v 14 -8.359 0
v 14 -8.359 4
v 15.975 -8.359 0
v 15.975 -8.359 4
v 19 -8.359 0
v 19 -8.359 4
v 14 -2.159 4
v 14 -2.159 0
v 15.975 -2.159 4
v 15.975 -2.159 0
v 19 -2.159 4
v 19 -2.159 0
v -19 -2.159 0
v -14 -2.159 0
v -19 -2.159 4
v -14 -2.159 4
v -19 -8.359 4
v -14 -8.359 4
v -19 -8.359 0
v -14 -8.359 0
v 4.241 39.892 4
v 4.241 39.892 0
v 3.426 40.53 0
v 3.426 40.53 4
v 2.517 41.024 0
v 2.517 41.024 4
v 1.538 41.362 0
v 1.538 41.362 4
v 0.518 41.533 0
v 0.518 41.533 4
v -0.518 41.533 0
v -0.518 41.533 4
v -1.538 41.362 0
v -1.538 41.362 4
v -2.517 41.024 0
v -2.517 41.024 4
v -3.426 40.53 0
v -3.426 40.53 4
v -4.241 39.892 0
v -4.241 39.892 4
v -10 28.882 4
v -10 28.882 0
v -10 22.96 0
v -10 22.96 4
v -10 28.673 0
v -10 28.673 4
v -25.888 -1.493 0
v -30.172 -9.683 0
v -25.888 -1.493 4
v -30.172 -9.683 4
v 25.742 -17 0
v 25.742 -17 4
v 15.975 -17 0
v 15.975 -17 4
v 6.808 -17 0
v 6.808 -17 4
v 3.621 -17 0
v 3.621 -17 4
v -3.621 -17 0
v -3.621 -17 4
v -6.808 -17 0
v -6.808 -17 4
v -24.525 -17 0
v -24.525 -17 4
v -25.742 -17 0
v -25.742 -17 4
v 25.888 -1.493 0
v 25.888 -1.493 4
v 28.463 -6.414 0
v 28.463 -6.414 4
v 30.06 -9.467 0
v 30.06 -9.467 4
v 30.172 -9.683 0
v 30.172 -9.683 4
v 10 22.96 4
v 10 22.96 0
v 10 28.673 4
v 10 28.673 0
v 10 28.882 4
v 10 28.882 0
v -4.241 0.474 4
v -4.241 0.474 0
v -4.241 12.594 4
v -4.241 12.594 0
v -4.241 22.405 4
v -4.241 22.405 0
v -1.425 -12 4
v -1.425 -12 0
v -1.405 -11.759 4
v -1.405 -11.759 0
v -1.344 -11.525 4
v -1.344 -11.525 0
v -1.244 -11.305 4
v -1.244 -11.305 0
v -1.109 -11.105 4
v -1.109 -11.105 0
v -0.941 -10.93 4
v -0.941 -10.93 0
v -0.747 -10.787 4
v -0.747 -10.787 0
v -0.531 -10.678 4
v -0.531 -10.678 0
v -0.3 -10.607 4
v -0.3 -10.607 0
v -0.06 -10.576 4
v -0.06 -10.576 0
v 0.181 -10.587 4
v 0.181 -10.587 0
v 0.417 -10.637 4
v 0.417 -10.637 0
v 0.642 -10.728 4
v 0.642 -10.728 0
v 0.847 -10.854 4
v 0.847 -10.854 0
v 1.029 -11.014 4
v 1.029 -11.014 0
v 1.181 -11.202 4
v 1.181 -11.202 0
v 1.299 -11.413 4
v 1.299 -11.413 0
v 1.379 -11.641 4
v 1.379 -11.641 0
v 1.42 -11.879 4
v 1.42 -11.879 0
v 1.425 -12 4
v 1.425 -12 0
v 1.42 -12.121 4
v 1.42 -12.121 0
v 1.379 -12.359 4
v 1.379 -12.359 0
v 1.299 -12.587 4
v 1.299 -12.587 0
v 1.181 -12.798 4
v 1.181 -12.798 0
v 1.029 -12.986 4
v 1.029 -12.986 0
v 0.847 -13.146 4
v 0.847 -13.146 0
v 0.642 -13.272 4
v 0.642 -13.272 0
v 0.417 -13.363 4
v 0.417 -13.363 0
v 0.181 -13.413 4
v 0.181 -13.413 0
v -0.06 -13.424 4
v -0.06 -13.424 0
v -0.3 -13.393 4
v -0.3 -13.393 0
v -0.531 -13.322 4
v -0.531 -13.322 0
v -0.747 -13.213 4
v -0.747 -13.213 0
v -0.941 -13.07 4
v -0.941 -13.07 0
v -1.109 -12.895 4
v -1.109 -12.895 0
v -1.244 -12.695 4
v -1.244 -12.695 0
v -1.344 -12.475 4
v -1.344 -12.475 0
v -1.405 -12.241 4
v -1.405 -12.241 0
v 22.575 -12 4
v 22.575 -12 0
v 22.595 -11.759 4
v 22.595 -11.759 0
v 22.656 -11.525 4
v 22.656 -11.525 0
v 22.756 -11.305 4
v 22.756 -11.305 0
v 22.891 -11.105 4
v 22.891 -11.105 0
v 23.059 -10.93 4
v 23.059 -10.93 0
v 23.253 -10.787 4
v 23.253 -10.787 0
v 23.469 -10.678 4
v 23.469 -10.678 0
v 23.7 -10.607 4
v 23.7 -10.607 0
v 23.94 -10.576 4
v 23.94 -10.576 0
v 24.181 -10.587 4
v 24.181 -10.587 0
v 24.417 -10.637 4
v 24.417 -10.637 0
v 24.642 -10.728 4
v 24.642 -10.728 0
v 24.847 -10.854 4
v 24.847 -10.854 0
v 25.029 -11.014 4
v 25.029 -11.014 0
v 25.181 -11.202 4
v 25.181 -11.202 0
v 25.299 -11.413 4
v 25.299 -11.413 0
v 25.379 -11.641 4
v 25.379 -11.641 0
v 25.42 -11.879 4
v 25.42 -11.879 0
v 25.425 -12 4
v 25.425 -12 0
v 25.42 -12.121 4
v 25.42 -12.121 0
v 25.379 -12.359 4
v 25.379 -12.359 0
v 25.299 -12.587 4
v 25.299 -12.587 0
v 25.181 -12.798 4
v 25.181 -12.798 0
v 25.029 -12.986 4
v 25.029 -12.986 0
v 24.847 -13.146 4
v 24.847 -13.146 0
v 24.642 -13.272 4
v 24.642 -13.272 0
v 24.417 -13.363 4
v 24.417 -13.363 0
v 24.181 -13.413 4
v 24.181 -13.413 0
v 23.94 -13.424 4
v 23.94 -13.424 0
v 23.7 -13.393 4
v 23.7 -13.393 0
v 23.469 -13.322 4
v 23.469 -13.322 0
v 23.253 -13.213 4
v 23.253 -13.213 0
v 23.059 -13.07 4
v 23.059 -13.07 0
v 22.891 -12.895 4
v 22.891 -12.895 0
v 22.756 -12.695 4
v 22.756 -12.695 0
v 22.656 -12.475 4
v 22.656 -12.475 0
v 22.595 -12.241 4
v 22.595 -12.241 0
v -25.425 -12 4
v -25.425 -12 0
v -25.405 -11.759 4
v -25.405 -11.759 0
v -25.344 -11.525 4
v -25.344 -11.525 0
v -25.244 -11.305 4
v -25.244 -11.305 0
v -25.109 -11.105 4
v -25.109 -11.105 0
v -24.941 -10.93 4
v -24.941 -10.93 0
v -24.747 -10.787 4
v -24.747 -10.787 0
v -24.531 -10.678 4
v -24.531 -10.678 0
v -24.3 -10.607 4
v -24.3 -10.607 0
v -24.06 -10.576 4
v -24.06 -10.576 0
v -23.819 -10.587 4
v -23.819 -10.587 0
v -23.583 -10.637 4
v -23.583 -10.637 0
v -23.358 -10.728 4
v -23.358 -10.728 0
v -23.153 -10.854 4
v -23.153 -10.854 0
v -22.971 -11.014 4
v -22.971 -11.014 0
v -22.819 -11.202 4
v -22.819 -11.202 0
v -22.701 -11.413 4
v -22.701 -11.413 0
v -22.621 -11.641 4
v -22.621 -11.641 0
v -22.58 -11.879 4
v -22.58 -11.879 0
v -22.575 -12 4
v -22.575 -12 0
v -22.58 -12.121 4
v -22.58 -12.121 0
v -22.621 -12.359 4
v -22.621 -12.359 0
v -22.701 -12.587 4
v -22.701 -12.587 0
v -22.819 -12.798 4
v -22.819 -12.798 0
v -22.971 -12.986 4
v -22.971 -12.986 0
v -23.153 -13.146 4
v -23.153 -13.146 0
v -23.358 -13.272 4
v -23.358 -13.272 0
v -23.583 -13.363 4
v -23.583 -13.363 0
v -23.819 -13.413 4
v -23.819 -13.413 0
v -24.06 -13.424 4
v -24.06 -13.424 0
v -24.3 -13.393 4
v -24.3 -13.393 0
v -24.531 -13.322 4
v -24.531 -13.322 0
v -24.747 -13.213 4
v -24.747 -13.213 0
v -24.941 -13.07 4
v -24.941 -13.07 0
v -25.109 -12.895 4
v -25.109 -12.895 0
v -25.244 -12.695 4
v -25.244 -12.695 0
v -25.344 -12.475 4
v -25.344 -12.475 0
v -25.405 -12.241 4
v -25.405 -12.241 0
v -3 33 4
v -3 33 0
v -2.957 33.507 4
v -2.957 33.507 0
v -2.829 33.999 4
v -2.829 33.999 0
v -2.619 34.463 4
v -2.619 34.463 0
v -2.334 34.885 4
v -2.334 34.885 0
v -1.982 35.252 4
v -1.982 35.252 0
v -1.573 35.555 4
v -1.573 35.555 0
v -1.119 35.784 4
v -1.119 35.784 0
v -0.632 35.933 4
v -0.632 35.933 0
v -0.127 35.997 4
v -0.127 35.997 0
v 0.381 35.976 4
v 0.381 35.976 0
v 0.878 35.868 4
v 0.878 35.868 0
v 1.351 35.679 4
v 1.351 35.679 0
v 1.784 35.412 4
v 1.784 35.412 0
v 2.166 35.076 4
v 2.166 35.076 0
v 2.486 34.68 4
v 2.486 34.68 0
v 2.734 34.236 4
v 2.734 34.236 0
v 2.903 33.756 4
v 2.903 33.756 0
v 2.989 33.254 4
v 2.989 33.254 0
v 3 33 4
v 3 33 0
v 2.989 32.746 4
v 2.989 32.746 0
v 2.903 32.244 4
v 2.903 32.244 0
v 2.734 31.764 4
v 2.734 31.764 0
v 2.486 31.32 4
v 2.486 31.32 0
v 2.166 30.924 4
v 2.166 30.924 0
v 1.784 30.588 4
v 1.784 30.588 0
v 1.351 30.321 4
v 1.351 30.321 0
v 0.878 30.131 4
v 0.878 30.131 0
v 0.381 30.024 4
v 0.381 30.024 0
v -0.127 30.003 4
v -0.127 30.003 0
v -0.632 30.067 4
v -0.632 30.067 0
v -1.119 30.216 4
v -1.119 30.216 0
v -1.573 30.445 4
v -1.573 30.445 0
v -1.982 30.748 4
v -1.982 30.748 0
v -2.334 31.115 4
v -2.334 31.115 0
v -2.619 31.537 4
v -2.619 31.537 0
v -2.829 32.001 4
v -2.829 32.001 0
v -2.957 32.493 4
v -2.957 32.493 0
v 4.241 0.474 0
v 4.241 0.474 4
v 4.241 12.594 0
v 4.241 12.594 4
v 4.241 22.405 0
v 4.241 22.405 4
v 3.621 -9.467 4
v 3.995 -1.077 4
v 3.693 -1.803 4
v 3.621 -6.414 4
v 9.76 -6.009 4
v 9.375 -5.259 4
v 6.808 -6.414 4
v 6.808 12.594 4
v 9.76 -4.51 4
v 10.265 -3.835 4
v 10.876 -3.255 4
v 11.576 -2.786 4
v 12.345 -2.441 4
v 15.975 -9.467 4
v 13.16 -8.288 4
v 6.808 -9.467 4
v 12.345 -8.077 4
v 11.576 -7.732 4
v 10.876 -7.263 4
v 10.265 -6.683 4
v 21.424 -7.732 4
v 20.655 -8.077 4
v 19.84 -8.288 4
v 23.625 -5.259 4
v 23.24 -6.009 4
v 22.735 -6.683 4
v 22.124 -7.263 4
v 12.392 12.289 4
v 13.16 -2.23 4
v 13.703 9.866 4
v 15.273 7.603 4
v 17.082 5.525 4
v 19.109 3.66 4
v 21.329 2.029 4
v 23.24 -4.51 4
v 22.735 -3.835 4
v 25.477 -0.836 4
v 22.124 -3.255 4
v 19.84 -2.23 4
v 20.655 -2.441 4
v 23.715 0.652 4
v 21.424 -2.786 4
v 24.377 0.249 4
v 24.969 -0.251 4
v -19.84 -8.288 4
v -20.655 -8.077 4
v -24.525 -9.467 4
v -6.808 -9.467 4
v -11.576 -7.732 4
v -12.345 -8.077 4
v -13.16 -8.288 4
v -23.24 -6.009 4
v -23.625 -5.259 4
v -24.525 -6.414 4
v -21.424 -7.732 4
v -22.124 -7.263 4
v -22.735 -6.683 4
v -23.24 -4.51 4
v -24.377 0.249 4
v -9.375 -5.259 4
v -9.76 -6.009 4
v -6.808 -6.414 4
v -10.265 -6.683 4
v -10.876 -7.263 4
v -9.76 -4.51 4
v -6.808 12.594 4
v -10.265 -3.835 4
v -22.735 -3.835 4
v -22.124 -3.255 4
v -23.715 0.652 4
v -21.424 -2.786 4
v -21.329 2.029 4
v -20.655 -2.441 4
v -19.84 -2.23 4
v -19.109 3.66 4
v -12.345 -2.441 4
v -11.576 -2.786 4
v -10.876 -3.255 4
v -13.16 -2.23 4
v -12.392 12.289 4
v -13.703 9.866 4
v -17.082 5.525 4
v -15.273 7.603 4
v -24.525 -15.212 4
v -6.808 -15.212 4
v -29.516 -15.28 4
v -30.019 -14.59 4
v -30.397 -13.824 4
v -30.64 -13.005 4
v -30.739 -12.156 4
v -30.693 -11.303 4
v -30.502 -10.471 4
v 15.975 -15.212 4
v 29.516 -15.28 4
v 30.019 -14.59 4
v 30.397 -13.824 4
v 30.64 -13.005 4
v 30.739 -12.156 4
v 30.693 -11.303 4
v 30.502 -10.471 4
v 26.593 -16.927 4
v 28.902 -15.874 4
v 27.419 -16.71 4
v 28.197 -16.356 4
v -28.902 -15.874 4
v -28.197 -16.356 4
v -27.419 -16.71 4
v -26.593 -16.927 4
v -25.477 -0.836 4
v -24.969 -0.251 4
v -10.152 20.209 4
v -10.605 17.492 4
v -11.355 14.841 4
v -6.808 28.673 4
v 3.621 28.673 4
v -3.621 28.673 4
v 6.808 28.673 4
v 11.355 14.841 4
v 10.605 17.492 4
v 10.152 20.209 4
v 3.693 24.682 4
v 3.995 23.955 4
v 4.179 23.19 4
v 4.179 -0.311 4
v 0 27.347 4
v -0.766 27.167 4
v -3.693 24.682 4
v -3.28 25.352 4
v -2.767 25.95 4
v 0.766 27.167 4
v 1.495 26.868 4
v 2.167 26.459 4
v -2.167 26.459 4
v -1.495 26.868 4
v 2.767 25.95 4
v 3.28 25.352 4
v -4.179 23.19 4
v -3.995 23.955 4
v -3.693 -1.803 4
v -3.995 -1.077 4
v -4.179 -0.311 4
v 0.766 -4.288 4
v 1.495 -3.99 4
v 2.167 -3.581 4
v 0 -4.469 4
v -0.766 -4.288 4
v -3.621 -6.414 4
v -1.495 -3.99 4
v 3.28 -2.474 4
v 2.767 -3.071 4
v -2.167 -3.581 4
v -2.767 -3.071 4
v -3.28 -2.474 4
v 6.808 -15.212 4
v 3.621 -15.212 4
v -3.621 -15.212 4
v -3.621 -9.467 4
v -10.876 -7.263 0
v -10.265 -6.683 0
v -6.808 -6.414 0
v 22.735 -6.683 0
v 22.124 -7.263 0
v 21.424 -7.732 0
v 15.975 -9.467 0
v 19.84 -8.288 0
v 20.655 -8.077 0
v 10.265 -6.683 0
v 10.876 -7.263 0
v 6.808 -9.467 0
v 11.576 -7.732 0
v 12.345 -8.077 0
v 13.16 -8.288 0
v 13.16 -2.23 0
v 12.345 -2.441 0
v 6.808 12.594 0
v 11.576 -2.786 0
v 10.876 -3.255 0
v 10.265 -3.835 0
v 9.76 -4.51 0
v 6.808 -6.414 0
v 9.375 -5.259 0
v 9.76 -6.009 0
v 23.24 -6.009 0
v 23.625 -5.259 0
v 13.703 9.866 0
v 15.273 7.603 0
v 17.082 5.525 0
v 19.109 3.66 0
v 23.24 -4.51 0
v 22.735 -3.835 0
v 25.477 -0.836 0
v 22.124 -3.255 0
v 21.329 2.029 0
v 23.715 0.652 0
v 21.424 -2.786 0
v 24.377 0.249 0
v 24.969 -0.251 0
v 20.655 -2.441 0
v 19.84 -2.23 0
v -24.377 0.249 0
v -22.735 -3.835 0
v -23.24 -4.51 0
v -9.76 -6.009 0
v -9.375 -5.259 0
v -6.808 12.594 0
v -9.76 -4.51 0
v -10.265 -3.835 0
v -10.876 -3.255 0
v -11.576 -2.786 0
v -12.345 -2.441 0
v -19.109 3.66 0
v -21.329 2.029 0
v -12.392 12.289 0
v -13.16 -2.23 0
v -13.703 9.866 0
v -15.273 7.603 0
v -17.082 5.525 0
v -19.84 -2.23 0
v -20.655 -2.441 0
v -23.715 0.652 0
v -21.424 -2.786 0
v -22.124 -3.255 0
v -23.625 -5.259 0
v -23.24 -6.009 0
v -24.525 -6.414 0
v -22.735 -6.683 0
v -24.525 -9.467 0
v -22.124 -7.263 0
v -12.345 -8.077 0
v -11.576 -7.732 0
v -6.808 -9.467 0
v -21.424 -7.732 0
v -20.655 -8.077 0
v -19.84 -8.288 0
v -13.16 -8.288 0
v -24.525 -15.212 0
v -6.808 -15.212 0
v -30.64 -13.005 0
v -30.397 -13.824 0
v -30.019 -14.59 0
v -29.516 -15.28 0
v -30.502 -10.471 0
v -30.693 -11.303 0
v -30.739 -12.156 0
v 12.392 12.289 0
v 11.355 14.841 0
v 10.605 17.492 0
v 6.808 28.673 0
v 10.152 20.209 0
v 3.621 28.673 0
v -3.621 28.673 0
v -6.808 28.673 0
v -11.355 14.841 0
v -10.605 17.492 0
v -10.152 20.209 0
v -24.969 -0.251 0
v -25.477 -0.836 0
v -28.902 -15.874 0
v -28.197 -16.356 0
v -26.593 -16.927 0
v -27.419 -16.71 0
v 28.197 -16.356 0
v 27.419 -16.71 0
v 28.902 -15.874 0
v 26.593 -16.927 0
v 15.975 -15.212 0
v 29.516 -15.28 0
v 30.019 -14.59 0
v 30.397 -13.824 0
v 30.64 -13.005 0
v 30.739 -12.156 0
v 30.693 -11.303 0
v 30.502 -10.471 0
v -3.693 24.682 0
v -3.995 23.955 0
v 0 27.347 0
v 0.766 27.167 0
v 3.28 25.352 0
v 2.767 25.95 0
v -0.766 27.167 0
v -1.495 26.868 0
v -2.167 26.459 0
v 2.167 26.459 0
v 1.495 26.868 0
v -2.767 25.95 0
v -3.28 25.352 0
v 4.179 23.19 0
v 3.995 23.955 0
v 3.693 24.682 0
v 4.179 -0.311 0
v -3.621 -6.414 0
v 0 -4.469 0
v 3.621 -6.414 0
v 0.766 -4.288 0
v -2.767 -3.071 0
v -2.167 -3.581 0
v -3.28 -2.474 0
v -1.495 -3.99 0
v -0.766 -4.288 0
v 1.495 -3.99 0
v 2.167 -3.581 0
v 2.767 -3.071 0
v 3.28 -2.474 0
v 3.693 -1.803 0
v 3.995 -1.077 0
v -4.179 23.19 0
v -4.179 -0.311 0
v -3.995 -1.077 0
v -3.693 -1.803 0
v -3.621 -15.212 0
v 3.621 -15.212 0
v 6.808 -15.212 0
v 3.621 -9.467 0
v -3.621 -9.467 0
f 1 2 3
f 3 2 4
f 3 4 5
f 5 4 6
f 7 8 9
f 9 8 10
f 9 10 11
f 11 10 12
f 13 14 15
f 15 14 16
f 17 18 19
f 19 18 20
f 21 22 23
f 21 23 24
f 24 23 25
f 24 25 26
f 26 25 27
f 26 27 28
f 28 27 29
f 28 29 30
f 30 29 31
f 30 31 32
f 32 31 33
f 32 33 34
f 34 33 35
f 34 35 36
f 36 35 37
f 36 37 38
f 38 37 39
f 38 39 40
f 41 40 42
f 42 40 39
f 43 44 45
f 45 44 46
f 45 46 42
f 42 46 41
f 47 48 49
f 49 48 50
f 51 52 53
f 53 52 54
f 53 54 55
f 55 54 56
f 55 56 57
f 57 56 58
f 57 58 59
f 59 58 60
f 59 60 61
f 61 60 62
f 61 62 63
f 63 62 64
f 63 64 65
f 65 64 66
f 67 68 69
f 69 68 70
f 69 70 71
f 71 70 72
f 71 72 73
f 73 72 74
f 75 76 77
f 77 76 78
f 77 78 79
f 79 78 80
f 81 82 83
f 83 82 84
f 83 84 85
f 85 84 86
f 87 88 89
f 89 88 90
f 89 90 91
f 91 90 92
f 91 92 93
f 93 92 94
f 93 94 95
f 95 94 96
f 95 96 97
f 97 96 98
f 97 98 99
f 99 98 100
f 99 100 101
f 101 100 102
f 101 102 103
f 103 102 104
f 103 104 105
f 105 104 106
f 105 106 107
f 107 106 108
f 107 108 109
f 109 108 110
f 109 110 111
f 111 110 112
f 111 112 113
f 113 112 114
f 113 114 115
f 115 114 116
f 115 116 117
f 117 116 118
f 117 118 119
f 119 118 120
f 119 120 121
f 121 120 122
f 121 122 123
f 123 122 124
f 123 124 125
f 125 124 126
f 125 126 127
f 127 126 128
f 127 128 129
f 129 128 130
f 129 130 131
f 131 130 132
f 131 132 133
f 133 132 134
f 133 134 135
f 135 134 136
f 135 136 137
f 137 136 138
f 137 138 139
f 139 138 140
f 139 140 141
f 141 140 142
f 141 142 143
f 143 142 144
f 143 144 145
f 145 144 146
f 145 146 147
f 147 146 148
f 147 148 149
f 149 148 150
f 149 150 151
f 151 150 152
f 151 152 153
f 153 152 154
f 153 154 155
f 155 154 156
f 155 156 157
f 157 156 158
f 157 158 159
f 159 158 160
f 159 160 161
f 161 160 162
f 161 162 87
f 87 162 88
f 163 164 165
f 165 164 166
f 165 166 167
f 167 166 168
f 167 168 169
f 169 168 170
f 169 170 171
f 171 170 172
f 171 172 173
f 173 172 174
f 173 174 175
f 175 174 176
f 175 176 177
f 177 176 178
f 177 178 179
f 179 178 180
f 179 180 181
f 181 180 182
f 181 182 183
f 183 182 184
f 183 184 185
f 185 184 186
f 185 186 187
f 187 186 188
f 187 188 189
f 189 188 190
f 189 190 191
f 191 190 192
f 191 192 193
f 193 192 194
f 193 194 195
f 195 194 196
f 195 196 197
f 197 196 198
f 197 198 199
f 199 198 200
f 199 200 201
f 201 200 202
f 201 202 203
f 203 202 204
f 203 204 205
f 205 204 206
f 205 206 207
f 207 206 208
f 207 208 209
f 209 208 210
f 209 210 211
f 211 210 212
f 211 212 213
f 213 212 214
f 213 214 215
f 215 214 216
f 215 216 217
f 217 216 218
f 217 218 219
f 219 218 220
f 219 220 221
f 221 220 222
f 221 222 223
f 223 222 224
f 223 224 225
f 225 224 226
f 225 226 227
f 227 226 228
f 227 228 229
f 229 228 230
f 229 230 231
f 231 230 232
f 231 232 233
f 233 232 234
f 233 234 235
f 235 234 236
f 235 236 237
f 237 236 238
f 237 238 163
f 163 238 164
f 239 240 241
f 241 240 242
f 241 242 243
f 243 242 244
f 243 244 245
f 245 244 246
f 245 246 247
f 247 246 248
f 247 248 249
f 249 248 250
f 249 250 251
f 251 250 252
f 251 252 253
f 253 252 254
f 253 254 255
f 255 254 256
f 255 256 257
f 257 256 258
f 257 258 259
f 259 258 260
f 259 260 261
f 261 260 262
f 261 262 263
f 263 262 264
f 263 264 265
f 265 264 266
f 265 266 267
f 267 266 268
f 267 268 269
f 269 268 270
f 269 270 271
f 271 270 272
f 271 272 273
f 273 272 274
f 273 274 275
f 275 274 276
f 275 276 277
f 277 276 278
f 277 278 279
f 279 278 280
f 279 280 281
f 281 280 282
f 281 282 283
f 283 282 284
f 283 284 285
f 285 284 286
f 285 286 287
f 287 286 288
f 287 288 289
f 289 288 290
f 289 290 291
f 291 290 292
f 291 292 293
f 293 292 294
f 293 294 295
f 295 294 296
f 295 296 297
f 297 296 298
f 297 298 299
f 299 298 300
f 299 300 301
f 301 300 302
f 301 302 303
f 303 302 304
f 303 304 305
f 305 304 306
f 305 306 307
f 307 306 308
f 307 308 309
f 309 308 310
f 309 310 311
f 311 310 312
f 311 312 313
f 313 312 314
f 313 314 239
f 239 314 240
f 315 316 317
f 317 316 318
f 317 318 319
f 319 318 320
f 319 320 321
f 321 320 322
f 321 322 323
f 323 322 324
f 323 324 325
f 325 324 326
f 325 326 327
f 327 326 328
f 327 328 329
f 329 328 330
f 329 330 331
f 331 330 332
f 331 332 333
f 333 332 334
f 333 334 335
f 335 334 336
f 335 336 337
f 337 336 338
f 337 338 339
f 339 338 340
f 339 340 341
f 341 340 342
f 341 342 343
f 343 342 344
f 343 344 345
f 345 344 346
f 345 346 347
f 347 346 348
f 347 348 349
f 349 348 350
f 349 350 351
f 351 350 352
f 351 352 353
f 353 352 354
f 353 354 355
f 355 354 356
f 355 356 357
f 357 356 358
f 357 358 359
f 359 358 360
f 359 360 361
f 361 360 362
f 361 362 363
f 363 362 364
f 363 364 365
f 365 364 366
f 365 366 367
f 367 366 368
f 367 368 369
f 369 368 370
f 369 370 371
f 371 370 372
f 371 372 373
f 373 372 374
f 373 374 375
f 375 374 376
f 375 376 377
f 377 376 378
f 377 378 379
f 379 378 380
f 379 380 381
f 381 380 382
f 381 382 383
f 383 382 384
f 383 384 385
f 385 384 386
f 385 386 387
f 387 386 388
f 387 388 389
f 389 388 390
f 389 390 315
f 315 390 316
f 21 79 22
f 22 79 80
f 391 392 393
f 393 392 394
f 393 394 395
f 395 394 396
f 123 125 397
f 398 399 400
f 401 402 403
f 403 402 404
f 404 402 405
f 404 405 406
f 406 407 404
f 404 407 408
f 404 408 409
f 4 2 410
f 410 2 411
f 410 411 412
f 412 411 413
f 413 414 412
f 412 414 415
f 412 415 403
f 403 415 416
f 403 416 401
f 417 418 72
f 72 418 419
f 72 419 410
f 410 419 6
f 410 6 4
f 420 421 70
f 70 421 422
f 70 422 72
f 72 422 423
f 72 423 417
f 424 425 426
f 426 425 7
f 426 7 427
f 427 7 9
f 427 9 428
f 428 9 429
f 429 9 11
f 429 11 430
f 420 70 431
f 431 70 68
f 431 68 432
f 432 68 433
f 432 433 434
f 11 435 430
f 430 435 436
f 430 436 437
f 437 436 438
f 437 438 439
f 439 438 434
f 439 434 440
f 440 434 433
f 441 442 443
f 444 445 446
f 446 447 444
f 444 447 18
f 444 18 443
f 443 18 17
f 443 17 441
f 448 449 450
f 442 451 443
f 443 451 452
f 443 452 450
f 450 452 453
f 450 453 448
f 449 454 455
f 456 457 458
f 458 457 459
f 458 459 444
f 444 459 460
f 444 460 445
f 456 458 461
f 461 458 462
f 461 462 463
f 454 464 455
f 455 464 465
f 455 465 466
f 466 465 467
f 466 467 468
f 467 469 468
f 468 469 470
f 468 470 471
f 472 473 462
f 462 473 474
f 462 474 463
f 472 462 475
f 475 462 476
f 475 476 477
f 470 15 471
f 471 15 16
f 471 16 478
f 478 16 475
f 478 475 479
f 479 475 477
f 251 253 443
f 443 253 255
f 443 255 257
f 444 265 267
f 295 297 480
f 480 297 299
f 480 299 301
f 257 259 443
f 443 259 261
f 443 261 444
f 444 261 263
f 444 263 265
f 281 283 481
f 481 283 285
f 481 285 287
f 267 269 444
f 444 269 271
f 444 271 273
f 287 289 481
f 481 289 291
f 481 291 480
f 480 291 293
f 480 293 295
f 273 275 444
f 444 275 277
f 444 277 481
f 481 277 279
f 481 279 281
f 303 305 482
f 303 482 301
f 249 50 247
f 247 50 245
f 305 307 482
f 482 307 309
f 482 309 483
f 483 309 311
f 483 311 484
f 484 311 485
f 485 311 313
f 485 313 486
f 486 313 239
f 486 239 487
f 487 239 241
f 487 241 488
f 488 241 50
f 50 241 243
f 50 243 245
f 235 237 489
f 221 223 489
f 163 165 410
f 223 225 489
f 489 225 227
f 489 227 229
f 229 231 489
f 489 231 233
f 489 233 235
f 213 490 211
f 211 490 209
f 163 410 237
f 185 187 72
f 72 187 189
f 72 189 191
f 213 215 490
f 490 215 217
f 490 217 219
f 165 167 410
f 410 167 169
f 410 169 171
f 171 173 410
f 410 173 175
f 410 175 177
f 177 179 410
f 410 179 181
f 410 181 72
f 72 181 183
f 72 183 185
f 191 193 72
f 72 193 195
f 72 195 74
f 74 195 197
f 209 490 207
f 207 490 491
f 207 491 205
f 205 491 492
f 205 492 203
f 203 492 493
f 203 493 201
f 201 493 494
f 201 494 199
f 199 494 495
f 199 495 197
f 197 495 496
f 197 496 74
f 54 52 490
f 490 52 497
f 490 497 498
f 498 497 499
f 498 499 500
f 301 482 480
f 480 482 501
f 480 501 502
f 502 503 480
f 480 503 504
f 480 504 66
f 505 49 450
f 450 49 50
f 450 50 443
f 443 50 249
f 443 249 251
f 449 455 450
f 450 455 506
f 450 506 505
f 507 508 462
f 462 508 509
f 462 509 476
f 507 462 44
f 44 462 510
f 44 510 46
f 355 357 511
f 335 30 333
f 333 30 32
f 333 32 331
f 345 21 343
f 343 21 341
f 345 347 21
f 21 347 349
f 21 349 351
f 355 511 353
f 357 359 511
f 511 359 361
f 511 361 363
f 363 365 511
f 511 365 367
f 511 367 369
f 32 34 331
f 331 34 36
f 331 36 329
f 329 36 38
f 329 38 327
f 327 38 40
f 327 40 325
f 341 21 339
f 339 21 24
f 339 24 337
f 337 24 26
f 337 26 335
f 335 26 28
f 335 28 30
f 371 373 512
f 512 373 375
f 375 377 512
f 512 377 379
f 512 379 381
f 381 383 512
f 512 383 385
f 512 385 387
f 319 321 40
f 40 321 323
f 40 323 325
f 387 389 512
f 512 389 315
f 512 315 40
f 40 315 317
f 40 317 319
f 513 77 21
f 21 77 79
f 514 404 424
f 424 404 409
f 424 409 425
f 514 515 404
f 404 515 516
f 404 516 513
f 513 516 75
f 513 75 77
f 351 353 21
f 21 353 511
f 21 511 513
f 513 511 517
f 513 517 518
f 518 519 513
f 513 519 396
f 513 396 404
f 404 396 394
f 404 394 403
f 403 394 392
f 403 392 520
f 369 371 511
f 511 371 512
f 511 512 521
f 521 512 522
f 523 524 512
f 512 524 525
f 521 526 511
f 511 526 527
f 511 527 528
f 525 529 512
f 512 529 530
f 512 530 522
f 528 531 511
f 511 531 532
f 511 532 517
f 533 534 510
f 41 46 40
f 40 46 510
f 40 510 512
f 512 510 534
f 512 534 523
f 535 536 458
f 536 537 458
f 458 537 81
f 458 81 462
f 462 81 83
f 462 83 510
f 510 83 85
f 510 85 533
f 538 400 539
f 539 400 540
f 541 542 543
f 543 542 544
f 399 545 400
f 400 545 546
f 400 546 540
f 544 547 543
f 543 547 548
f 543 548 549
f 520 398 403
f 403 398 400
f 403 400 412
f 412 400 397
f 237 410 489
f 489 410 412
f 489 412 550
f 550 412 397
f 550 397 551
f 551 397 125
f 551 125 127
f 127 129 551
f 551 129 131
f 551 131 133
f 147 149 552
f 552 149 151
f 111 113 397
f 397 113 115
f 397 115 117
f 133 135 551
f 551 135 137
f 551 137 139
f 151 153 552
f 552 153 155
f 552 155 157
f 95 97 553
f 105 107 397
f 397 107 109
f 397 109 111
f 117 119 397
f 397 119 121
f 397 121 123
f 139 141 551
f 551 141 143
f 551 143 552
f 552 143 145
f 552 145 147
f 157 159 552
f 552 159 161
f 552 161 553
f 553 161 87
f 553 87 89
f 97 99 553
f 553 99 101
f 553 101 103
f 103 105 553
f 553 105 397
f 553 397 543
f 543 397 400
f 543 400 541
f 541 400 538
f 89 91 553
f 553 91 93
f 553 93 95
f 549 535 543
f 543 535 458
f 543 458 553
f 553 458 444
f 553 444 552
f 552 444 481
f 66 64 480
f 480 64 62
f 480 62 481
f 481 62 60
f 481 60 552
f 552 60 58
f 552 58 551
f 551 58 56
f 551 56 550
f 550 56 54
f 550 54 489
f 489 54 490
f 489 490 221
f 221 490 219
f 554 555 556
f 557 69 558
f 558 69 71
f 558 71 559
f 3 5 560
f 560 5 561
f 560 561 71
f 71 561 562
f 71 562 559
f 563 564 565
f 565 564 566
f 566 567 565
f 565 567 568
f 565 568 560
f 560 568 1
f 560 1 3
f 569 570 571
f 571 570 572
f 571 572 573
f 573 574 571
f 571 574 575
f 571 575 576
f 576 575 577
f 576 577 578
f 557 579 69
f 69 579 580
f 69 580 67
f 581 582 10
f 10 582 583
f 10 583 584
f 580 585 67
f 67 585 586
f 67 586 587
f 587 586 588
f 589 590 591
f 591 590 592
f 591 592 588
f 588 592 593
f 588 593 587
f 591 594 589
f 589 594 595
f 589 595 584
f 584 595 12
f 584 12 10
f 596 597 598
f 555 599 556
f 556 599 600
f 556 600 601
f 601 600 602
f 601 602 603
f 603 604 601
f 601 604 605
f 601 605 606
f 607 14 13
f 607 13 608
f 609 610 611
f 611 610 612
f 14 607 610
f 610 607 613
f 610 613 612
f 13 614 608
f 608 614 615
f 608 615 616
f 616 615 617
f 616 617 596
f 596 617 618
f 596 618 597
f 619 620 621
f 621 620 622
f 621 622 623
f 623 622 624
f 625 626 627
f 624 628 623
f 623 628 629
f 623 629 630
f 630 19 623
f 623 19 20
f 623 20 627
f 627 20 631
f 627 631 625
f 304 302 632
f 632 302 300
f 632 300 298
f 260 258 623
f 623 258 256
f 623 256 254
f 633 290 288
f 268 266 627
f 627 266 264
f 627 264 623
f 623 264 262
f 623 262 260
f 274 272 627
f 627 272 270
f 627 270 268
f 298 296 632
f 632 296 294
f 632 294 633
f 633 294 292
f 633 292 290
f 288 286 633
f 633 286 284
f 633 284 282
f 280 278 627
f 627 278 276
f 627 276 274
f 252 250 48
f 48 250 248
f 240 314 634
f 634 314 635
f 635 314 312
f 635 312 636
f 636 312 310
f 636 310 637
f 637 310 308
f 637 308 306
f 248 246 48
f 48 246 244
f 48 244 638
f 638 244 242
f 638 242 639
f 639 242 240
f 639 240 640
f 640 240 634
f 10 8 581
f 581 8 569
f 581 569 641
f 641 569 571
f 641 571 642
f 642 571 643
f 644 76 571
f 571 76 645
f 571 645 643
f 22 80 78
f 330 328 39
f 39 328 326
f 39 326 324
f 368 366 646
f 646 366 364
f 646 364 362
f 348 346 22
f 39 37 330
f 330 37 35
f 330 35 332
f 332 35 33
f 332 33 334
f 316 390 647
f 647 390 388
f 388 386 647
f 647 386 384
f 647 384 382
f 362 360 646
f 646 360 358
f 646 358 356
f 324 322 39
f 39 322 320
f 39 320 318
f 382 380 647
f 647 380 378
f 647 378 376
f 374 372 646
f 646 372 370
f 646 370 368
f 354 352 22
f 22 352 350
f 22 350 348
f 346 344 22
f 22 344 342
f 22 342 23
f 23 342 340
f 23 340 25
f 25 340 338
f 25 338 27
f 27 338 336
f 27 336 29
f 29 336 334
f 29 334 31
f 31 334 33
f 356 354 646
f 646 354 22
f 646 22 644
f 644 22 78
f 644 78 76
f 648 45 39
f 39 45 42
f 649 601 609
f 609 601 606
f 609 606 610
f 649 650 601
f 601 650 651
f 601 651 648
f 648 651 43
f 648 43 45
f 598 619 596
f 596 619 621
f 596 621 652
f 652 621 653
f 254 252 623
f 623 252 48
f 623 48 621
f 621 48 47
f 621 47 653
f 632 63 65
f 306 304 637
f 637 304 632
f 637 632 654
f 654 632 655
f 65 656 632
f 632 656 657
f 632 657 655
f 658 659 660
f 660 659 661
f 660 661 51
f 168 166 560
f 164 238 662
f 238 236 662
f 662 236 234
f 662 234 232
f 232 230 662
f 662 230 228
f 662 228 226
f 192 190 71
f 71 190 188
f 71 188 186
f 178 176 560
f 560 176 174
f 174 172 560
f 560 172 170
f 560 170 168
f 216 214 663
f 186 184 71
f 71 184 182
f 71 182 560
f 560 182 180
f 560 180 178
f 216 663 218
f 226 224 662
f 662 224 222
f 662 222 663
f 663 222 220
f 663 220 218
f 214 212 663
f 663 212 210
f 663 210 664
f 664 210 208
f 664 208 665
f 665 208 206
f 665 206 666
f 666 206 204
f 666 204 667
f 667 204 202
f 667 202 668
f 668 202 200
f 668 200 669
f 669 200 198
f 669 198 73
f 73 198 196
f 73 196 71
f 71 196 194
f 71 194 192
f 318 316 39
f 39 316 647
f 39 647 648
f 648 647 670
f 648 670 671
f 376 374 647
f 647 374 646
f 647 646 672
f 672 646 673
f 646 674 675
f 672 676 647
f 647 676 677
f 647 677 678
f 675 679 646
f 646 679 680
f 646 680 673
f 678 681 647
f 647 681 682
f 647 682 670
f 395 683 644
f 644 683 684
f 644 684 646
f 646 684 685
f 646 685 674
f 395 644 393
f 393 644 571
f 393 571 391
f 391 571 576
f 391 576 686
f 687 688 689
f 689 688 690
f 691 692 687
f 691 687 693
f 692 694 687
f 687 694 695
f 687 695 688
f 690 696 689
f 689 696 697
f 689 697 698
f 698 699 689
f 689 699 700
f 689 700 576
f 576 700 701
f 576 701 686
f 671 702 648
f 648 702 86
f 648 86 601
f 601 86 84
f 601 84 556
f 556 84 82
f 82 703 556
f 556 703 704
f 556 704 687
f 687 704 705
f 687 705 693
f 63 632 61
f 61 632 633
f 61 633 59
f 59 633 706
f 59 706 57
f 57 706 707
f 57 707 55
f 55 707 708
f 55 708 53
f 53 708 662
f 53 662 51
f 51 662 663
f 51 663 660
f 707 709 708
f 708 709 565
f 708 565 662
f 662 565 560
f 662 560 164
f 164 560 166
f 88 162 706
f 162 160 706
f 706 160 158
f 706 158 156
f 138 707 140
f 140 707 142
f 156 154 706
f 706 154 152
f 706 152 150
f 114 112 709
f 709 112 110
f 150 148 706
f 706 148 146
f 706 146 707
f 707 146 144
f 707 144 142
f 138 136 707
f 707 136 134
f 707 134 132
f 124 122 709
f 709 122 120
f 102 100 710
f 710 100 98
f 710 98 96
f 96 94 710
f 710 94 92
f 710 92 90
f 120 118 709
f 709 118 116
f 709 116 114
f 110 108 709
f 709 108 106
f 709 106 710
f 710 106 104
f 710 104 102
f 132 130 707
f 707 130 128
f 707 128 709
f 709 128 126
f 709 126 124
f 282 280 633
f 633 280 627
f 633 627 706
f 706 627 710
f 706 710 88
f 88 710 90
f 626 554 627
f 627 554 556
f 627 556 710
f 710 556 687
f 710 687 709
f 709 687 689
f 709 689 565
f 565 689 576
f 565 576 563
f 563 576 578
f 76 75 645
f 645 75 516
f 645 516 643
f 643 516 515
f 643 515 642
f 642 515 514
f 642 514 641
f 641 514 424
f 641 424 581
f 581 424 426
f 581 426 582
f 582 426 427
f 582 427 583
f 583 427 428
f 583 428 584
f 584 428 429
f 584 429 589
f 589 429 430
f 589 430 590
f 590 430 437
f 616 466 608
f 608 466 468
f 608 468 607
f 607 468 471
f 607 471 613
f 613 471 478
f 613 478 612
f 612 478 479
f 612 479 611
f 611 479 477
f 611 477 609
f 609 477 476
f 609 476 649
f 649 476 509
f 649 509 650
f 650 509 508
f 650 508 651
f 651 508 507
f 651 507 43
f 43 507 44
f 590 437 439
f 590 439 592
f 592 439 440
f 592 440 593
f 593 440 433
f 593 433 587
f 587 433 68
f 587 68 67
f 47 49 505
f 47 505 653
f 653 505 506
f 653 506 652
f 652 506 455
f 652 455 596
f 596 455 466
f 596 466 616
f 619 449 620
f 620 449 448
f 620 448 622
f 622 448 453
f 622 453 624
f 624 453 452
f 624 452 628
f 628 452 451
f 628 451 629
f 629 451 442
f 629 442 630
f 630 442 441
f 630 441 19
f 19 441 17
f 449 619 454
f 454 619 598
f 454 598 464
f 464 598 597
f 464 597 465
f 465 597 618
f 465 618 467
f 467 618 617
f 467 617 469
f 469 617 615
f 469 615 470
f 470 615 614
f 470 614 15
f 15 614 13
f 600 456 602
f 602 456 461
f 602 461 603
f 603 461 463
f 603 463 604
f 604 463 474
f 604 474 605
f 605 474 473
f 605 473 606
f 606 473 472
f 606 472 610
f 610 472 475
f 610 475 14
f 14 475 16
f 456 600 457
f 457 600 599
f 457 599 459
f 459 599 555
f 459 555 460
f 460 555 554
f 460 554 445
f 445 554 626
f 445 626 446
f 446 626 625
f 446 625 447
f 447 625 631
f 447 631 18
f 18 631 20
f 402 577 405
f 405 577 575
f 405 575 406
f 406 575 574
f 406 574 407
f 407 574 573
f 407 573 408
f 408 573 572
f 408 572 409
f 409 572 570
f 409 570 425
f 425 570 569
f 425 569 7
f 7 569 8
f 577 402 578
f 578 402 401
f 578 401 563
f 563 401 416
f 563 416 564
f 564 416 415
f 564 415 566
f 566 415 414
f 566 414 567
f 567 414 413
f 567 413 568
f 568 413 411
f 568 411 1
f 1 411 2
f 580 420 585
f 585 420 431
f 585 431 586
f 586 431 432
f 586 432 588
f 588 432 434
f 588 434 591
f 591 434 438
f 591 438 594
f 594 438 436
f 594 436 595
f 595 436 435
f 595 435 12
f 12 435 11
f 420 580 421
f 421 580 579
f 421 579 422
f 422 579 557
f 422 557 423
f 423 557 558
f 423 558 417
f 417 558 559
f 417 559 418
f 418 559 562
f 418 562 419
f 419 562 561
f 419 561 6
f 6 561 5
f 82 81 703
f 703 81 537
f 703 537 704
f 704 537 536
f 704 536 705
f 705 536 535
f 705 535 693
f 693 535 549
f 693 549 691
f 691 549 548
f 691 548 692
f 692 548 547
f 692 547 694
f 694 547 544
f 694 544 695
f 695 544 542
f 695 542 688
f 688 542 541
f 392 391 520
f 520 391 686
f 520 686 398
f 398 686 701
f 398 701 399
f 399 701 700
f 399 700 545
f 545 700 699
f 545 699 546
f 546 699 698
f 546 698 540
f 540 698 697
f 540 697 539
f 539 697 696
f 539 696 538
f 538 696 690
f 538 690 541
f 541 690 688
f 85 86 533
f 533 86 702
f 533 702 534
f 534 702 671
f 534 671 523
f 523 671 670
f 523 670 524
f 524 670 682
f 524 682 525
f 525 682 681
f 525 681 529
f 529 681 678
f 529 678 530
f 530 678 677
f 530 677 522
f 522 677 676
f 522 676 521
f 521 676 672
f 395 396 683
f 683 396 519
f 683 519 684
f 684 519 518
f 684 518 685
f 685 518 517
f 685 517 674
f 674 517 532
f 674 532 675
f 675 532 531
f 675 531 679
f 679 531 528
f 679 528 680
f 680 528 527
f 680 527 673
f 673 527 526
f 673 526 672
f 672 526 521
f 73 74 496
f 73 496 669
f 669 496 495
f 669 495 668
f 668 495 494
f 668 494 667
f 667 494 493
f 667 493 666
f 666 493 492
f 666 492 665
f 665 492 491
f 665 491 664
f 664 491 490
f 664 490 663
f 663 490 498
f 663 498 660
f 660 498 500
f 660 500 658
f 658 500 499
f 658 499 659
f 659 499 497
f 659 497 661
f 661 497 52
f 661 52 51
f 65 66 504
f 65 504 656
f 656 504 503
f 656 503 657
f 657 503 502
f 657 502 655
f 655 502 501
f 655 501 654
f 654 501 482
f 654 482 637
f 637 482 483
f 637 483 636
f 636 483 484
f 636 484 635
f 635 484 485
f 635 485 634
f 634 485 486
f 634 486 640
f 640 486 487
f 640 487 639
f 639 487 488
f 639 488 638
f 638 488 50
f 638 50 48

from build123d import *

# Parameters (mm, degrees)
SKETCH1_W           = 8.482282434
SKETCH1_H           = 31.931379298
SKETCH1_R           = 3
SKETCH1_W_2         = 15
SKETCH1_H_2         = 6.200324761
SKETCH1_R_2         = 1.425
BOSS_EXTRUDE1_DEPTH = 4
FILLET3_R           = 25
FILLET4_R           = 5


with BuildPart() as part:
    # Sketch1 → Boss-Extrude1 (new body)
    with BuildSketch(Plane.XY):
        with BuildLine():
            ThreePointArc((4.241141217, 39.891935908), (0, 41.554196678), (-4.241141217, 39.891935908))
            Line((-4.241141217, 39.891935908), (-10, 28.882352941))
            Line((-10, 28.882352941), (-10, 0))
            Line((-10, 0), (-25.107692308, 0))
            Line((-25.107692308, 0), (-34, -17))
            Line((-34, -17), (34, -17))
            Line((34, -17), (25.107692308, 0))
            Line((25.107692308, 0), (10, 0))
            Line((10, 0), (10, 28.882352941))
            Line((10, 28.882352941), (4.241141217, 39.891935908))
        make_face()
        with Locations((0, 11.439217567)):
            Rectangle(SKETCH1_W, SKETCH1_H, mode=Mode.SUBTRACT)
        with Locations((0, 33)):
            Circle(SKETCH1_R, mode=Mode.SUBTRACT)
        with Locations((16.5, -5.259184167)):
            Rectangle(SKETCH1_W_2, SKETCH1_H_2, mode=Mode.SUBTRACT)
        with Locations((24, -12)):
            Circle(SKETCH1_R_2, mode=Mode.SUBTRACT)
        with Locations((-24, -12)):
            Circle(SKETCH1_R_2, mode=Mode.SUBTRACT)
        with Locations((-16.5, -5.259184167)):
            Rectangle(SKETCH1_W_2, SKETCH1_H_2, mode=Mode.SUBTRACT)
        with Locations((0, -12)):
            Circle(SKETCH1_R_2, mode=Mode.SUBTRACT)
    extrude(amount=BOSS_EXTRUDE1_DEPTH)

    # Fillet3
    # the kernel refuses this fillet: 25 mm, written as the material it adds along each edge
    with BuildSketch(Plane(origin=(10, 0, 0), x_dir=(1, 0, 0), z_dir=(0, 0, 1))) as fillet3_piece_1:
        with BuildLine():
            CenterArc((25, 22.959578579), FILLET3_R, 180, 66.690841486)
            Line((0, 22.959578579), (-0.5, 22.959578579))
            Line((-0.5, 22.959578579), (-0.5, 0))
            Line((-0.5, 0), (0, -0.5))
            ThreePointArc((0, -0.5), (7.553846154, -0.5), (14.909846154, -0.459191572))
            Line((14.909846154, -0.459191572), (15.107692308, 0))
        make_face()
    extrude(amount=4)
    with BuildSketch(Plane(origin=(-10, 0, 0), x_dir=(0, 1, 0), z_dir=(0, 0, 1))) as fillet3_piece_2:
        with BuildLine():
            CenterArc((22.959578579, 25), FILLET3_R, 203.309158514, 66.690841486)
            Line((0, 15.107692308), (-0.459191572, 14.909846154))
            ThreePointArc((-0.459191572, 14.909846154), (-0.5, 7.553846154), (-0.5, 0))
            Line((-0.5, 0), (0, -0.5))
            Line((0, -0.5), (22.959578579, -0.5))
            Line((22.959578579, -0.5), (22.959578579, 0))
        make_face()
    extrude(amount=4)

    # Fillet4
    # the kernel refuses this fillet: 5 mm, written as the material it adds along each edge
    with BuildSketch(Plane(origin=(4.241141217, -4.526472082, 0), x_dir=(0, 1, 0), z_dir=(0, 0, 1)), Plane(origin=(4.241141217, 27.404907216, 0), x_dir=(-1, 0, 0), z_dir=(0, 0, 1)), Plane(origin=(-24, -2.159021786, 0), x_dir=(0, -1, 0), z_dir=(0, 0, 1)), Plane(origin=(-9, -2.159021786, 0), x_dir=(-1, 0, 0), z_dir=(0, 0, 1)), Plane(origin=(9, -8.359346547, 0), x_dir=(1, 0, 0), z_dir=(0, 0, 1)), Plane(origin=(9, -2.159021786, 0), x_dir=(0, -1, 0), z_dir=(0, 0, 1))) as fillet4_piece_1:
        with BuildLine():
            CenterArc((FILLET4_R, FILLET4_R), FILLET4_R, 180, 90)
            Line((0, FILLET4_R), (0, 0))
            Line((0, 0), (FILLET4_R, 0))
        make_face()
    extrude(amount=4)
    with BuildSketch(Plane(origin=(-4.241141217, -4.526472082, 0), x_dir=(0, 1, 0), z_dir=(0, 0, 1)), Plane(origin=(-4.241141217, 27.404907216, 0), x_dir=(1, 0, 0), z_dir=(0, 0, 1)), Plane(origin=(-24, -8.359346547, 0), x_dir=(0, 1, 0), z_dir=(0, 0, 1)), Plane(origin=(-9, -8.359346547, 0), x_dir=(-1, 0, 0), z_dir=(0, 0, 1)), Plane(origin=(24, -8.359346547, 0), x_dir=(-1, 0, 0), z_dir=(0, 0, 1)), Plane(origin=(24, -2.159021786, 0), x_dir=(0, -1, 0), z_dir=(0, 0, 1))) as fillet4_piece_2:
        with BuildLine():
            CenterArc((FILLET4_R, -FILLET4_R), FILLET4_R, 90, 90)
            Line((0, -FILLET4_R), (0, 0))
            Line((0, 0), (FILLET4_R, 0))
        make_face()
    extrude(amount=4)
    # the kernel refuses this fillet: 5 mm, written as the material it takes off along each edge
    with BuildSketch(Plane(origin=(34, -17, -20.64524995), x_dir=(-1, 0, 0), z_dir=(0, 0, 1)), Plane(origin=(-34, -17, -20.64524995), x_dir=(0.46349752669999783, 0.88609821280882, 0), z_dir=(0, 0, 1))) as fillet4_2_piece_1:
        with BuildLine():
            CenterArc((FILLET4_R * 1.65161999601, -FILLET4_R), FILLET4_R, 90, 117.613027823)
            Line((FILLET4_R * 0.765521783197, -FILLET4_R * 1.4634975267), (0, 0))
            Line((0, 0), (FILLET4_R * 1.65161999601, 0))
        make_face()
    extrude(amount=45.2904999, mode=Mode.SUBTRACT)
    with BuildSketch(Plane(origin=(25.107692308, 0, -4.210996565), x_dir=(-0.9057801330120623, 0.42374798010214837, 0), z_dir=(0, 0, 1))) as fillet4_2_piece_2:
        with BuildLine():
            CenterArc((1.691402393, 4.997635108), FILLET4_R, 232.68446816, 35.553250017)
            Line((-1.339617689, 1.021089212), (0, 0))
            ThreePointArc((0, 0), (0.768819269, 0.011824458), (1.537638539, 0))
        make_face()
    extrude(amount=12.421993131, mode=Mode.SUBTRACT)
    with BuildSketch(Plane(origin=(-25.107692308, 0, -4.210996565), x_dir=(0.9057801330120621, 0.4237479801021487, 0), z_dir=(0, 0, 1))) as fillet4_2_piece_3:
        with BuildLine():
            CenterArc((1.691402393, -4.997635108), FILLET4_R, 91.762281823, 35.553250017)
            Line((-1.339617689, -1.021089212), (0, 0))
            ThreePointArc((0, 0), (0.768819269, -0.011824458), (1.537638539, 0))
        make_face()
    extrude(amount=12.421993131, mode=Mode.SUBTRACT)


solid = part.part
